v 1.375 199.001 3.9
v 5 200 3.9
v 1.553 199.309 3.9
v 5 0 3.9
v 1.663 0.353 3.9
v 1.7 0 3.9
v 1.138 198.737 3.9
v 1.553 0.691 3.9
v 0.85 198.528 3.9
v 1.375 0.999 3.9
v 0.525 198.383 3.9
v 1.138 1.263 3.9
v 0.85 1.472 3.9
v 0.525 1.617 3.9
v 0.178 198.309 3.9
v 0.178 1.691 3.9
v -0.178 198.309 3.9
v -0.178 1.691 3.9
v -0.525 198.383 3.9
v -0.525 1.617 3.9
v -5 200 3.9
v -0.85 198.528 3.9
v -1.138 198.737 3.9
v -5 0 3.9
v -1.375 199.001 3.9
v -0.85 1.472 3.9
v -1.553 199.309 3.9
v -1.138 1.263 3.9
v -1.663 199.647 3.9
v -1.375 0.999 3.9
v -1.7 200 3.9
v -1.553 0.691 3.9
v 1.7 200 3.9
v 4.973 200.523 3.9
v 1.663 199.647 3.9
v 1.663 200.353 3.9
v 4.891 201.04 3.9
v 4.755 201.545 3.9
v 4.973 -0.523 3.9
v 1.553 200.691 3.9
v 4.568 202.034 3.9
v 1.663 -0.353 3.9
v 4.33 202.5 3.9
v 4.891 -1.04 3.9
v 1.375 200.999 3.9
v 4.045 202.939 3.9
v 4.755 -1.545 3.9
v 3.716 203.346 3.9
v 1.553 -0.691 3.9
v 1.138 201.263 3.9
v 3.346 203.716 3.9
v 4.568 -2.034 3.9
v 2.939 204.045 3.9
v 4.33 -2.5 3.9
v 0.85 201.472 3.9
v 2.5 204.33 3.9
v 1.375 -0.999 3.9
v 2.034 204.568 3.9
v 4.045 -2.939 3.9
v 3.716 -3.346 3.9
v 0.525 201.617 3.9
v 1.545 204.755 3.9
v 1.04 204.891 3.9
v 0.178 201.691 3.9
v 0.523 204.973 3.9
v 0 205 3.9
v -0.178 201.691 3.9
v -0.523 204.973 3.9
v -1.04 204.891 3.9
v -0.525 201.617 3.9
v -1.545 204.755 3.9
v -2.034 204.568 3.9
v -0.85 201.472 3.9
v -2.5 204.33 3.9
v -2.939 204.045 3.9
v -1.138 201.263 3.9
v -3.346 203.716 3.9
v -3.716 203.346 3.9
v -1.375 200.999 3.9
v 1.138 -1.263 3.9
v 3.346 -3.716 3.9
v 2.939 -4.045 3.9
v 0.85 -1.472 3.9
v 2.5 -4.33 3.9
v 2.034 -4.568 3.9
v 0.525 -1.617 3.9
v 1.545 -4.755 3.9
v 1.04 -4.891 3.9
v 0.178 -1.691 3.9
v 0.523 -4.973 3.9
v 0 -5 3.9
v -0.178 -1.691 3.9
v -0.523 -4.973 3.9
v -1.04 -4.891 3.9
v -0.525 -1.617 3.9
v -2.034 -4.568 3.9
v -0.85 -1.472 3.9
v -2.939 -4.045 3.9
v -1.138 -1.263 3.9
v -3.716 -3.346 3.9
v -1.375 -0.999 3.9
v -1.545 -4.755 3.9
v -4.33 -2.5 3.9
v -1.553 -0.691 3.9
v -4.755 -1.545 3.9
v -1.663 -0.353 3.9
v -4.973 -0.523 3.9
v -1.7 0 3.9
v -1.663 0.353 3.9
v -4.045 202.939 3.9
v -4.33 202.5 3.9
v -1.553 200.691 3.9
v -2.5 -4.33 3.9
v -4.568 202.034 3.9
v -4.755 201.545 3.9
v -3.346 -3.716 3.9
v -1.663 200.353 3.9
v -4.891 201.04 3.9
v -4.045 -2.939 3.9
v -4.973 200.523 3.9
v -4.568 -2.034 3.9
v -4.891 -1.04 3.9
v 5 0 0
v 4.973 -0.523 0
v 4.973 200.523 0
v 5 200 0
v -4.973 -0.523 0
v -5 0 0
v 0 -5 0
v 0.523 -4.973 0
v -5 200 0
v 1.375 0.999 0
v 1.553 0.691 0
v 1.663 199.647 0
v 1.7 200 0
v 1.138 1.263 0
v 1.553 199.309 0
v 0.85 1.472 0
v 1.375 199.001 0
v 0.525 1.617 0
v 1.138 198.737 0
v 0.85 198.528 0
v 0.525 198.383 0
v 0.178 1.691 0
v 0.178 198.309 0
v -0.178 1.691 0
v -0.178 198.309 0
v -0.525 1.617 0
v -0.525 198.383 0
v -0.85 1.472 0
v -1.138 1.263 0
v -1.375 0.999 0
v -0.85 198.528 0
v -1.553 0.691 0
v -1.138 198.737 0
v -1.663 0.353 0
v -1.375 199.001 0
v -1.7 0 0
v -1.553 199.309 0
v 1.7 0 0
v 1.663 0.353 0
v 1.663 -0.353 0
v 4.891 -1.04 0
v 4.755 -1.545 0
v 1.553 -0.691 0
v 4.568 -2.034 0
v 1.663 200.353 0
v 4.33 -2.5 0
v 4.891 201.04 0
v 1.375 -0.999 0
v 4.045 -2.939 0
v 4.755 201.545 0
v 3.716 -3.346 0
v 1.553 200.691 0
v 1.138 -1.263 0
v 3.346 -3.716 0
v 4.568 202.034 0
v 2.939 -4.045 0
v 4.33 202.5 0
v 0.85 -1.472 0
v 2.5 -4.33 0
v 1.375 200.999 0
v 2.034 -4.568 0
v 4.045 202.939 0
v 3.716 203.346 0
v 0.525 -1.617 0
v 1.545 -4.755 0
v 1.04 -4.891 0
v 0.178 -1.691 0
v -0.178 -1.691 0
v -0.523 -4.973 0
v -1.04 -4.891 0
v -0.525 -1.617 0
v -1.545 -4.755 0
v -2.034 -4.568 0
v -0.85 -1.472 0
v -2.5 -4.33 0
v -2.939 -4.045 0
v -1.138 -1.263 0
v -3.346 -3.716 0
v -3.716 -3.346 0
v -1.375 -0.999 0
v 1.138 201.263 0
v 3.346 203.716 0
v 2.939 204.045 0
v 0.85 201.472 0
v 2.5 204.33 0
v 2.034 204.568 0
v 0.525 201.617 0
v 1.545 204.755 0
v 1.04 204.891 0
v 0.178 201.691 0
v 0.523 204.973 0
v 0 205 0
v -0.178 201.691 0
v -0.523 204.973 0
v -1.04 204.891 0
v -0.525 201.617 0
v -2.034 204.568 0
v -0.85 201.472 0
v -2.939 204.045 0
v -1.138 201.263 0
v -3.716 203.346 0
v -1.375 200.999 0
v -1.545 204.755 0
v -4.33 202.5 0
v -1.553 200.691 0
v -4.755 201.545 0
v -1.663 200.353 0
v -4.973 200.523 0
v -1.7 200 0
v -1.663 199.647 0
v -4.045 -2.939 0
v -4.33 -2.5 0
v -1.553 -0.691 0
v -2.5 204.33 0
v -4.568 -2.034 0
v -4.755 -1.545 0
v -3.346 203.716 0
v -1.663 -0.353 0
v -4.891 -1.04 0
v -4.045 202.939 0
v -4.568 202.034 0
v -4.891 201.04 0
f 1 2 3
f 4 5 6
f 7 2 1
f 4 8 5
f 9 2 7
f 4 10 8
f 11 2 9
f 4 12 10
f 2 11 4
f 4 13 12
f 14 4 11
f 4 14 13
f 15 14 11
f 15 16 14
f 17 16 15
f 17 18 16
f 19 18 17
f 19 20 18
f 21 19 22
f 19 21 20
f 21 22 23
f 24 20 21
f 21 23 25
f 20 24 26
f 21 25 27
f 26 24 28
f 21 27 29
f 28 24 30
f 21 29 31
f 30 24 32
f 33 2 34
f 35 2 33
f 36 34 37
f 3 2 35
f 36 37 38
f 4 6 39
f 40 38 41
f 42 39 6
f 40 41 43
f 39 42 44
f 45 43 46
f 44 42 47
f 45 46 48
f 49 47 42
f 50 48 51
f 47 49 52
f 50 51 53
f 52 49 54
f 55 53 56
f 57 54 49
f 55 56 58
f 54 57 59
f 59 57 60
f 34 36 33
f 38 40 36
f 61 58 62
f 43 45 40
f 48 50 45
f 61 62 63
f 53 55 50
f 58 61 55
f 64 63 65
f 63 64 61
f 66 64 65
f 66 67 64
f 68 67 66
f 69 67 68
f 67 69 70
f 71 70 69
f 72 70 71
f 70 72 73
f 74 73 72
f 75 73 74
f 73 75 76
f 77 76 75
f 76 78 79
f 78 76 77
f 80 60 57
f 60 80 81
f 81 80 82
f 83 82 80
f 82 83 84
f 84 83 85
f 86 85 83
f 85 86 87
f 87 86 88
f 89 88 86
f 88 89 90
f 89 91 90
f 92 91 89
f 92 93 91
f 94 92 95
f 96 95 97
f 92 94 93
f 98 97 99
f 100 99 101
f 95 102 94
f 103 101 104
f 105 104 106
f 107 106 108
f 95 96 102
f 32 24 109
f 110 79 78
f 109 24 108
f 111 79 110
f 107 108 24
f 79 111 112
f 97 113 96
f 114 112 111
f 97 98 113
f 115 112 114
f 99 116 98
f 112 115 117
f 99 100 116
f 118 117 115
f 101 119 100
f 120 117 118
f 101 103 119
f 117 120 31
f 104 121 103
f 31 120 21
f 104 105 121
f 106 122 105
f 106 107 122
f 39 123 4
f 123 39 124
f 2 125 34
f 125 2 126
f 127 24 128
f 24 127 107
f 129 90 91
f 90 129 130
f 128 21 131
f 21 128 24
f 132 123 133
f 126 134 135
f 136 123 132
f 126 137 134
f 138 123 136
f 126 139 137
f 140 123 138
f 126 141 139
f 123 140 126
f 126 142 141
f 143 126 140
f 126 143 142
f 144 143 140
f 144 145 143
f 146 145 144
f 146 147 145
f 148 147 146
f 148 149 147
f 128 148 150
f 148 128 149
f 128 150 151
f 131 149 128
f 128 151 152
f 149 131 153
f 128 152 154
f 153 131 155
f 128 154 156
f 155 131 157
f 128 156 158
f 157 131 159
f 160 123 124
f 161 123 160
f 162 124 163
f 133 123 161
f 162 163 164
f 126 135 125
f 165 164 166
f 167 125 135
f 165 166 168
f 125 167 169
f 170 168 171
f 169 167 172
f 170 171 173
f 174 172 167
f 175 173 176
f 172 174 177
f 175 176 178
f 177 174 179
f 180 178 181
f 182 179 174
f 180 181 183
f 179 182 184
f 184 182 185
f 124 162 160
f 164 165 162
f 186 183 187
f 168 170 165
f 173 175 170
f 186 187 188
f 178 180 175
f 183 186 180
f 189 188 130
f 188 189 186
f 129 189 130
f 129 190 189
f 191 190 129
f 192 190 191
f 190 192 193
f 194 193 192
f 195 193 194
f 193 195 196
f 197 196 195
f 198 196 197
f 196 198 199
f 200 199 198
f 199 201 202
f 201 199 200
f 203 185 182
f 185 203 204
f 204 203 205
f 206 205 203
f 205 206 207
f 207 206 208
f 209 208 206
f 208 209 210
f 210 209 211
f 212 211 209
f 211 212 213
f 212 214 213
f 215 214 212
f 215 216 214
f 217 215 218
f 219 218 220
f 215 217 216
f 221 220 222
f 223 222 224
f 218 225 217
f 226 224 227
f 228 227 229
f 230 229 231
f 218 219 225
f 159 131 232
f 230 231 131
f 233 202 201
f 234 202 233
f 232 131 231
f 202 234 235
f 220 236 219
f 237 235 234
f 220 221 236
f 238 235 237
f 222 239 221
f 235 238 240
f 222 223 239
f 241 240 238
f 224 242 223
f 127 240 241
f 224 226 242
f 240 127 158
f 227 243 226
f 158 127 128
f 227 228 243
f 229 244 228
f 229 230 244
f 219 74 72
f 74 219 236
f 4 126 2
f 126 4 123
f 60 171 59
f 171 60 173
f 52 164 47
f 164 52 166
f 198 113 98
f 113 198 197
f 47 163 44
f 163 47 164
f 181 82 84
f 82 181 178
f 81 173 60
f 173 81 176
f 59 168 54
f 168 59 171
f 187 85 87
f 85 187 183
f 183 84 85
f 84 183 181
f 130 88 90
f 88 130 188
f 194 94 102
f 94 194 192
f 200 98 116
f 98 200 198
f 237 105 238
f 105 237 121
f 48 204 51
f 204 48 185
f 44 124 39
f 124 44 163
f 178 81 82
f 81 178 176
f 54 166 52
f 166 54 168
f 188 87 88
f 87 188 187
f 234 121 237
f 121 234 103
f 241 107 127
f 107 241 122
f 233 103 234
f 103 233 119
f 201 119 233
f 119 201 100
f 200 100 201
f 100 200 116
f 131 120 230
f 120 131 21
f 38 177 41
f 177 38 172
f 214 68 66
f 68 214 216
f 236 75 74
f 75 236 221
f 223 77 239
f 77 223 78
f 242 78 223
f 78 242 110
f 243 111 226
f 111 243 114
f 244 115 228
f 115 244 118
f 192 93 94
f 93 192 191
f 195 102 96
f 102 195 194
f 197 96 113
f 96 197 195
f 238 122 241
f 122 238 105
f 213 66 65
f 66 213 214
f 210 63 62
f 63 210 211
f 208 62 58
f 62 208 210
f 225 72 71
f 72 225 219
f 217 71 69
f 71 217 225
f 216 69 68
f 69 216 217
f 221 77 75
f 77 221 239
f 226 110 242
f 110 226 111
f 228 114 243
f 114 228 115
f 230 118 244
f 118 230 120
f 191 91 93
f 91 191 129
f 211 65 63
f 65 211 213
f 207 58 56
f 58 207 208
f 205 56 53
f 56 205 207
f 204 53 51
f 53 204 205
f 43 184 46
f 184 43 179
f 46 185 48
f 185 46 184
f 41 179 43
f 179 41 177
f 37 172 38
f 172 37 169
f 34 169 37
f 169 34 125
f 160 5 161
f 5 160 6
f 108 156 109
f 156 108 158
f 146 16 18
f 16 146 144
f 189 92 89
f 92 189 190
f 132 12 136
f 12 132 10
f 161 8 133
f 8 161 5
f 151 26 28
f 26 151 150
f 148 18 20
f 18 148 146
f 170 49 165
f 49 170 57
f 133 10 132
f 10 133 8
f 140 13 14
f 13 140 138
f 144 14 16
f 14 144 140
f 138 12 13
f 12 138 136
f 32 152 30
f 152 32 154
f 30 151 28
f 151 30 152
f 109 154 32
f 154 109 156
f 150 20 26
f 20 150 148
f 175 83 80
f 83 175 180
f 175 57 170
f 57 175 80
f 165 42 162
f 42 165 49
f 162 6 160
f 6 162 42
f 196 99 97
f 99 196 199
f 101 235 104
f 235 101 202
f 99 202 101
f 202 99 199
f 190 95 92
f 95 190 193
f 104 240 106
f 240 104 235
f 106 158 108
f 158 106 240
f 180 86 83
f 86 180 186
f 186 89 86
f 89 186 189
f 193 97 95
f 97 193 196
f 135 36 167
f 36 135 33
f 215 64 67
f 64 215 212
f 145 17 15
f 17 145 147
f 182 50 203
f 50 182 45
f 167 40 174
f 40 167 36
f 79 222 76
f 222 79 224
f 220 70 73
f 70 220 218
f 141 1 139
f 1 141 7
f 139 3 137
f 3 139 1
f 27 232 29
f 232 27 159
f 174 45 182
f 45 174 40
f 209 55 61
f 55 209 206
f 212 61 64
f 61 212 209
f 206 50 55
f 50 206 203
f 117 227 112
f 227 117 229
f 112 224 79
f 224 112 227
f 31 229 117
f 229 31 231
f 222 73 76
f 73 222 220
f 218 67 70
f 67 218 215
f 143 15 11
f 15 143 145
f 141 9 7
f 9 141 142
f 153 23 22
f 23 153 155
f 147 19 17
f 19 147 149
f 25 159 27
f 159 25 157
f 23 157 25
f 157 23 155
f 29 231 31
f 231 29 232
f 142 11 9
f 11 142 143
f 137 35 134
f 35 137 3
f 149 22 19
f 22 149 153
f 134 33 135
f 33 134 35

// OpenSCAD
//general
$fn = 30;                  //convexity of general curved faces
thickness = 3.9;             //thickness of arm

//arm specific stuff
armLength =  200;//155;               //horn center to horn center distance for arm length

pivotDiameter = 10;            //diameter of pivoting end
freeTurning3mm = 3.4;          //diameter of hole for free turning motion

difference(){
   hull(){
      cylinder(d=pivotDiameter,h=thickness, $fn = 60);
      translate([0,armLength,0])
      cylinder(d=pivotDiameter,h=thickness, $fn = 60);
   }
   cylinder(d=freeTurning3mm,h=thickness);
   translate([0,armLength,0])
   cylinder(d=freeTurning3mm,h=thickness);
}
